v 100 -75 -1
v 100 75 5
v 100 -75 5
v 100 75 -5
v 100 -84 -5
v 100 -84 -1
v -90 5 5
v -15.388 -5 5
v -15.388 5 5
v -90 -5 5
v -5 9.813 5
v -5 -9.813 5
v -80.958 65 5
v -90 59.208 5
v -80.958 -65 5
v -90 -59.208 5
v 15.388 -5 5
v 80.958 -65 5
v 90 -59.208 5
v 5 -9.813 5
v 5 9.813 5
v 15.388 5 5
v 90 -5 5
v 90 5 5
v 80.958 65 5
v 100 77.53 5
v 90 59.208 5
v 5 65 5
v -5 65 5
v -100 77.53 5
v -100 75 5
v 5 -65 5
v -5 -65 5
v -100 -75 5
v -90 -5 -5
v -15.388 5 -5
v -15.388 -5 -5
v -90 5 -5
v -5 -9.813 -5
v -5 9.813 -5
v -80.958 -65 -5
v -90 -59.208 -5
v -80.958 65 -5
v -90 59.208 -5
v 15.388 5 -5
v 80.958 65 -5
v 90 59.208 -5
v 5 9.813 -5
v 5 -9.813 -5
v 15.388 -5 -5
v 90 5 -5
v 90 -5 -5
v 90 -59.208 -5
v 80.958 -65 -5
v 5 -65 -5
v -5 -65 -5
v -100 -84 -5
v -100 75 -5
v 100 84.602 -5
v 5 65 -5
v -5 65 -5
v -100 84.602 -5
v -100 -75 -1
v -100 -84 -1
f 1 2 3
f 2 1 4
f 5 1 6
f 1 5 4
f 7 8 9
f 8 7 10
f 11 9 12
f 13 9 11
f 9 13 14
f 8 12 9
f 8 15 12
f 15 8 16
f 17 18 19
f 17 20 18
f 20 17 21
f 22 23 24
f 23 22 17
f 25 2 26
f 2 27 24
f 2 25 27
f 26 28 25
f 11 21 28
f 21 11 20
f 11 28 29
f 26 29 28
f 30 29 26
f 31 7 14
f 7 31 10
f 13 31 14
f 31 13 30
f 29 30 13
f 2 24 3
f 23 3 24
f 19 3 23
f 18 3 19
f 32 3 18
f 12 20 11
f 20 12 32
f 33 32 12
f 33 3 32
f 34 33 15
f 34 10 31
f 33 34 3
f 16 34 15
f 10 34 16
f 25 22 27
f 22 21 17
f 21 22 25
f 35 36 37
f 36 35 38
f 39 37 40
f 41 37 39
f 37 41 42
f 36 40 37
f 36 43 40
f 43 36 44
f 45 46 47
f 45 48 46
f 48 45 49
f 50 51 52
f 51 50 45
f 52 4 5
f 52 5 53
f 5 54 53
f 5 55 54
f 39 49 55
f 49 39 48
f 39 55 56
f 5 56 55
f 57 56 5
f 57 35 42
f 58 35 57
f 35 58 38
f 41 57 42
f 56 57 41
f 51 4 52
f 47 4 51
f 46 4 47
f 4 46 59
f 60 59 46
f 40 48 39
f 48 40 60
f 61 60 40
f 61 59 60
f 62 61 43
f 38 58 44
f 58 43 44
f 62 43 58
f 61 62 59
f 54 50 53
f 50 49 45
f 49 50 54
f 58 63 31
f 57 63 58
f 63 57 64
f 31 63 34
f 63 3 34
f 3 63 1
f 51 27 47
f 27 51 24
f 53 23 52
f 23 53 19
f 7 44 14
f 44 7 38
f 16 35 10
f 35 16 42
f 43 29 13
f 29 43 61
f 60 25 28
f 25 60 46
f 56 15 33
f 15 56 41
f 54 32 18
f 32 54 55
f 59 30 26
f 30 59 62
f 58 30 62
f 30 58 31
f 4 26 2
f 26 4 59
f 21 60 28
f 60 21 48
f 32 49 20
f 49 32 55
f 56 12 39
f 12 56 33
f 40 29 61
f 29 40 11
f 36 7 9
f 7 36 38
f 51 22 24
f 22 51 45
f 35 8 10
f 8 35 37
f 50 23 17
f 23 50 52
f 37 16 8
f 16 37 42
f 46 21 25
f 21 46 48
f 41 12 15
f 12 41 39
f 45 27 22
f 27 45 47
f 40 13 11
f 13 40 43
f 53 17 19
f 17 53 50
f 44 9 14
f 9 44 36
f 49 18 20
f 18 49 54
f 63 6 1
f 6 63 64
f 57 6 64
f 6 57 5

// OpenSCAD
union() {
    difference() {
        cube([200, 150, 10], center = true);
        cube([180, 130, 12], center = true);
    }
    cube([10, 150, 10], center = true);
    cube([200, 10, 10], center = true);
    rotate([0, 0, 36])
        cube([230, 10, 10], center = true);
    rotate([0, 0, -36])
        cube([230, 10, 10], center = true);
    difference() {
        translate([0, -25, 0])
            rotate([0, 0, 45])
                cylinder(10, 155, 145, center = true, $fn=4);
        translate([0, -50, 0])
            cube([230, 250, 12], center = true);
        translate([-115, 74, -6])
            cube([15, 15, 12]);
        translate([100, 74, -6])
            cube([15, 15, 12]);
    }
    translate([0, -79.5, -3])
        cube([200, 9, 4], center = true);
}
